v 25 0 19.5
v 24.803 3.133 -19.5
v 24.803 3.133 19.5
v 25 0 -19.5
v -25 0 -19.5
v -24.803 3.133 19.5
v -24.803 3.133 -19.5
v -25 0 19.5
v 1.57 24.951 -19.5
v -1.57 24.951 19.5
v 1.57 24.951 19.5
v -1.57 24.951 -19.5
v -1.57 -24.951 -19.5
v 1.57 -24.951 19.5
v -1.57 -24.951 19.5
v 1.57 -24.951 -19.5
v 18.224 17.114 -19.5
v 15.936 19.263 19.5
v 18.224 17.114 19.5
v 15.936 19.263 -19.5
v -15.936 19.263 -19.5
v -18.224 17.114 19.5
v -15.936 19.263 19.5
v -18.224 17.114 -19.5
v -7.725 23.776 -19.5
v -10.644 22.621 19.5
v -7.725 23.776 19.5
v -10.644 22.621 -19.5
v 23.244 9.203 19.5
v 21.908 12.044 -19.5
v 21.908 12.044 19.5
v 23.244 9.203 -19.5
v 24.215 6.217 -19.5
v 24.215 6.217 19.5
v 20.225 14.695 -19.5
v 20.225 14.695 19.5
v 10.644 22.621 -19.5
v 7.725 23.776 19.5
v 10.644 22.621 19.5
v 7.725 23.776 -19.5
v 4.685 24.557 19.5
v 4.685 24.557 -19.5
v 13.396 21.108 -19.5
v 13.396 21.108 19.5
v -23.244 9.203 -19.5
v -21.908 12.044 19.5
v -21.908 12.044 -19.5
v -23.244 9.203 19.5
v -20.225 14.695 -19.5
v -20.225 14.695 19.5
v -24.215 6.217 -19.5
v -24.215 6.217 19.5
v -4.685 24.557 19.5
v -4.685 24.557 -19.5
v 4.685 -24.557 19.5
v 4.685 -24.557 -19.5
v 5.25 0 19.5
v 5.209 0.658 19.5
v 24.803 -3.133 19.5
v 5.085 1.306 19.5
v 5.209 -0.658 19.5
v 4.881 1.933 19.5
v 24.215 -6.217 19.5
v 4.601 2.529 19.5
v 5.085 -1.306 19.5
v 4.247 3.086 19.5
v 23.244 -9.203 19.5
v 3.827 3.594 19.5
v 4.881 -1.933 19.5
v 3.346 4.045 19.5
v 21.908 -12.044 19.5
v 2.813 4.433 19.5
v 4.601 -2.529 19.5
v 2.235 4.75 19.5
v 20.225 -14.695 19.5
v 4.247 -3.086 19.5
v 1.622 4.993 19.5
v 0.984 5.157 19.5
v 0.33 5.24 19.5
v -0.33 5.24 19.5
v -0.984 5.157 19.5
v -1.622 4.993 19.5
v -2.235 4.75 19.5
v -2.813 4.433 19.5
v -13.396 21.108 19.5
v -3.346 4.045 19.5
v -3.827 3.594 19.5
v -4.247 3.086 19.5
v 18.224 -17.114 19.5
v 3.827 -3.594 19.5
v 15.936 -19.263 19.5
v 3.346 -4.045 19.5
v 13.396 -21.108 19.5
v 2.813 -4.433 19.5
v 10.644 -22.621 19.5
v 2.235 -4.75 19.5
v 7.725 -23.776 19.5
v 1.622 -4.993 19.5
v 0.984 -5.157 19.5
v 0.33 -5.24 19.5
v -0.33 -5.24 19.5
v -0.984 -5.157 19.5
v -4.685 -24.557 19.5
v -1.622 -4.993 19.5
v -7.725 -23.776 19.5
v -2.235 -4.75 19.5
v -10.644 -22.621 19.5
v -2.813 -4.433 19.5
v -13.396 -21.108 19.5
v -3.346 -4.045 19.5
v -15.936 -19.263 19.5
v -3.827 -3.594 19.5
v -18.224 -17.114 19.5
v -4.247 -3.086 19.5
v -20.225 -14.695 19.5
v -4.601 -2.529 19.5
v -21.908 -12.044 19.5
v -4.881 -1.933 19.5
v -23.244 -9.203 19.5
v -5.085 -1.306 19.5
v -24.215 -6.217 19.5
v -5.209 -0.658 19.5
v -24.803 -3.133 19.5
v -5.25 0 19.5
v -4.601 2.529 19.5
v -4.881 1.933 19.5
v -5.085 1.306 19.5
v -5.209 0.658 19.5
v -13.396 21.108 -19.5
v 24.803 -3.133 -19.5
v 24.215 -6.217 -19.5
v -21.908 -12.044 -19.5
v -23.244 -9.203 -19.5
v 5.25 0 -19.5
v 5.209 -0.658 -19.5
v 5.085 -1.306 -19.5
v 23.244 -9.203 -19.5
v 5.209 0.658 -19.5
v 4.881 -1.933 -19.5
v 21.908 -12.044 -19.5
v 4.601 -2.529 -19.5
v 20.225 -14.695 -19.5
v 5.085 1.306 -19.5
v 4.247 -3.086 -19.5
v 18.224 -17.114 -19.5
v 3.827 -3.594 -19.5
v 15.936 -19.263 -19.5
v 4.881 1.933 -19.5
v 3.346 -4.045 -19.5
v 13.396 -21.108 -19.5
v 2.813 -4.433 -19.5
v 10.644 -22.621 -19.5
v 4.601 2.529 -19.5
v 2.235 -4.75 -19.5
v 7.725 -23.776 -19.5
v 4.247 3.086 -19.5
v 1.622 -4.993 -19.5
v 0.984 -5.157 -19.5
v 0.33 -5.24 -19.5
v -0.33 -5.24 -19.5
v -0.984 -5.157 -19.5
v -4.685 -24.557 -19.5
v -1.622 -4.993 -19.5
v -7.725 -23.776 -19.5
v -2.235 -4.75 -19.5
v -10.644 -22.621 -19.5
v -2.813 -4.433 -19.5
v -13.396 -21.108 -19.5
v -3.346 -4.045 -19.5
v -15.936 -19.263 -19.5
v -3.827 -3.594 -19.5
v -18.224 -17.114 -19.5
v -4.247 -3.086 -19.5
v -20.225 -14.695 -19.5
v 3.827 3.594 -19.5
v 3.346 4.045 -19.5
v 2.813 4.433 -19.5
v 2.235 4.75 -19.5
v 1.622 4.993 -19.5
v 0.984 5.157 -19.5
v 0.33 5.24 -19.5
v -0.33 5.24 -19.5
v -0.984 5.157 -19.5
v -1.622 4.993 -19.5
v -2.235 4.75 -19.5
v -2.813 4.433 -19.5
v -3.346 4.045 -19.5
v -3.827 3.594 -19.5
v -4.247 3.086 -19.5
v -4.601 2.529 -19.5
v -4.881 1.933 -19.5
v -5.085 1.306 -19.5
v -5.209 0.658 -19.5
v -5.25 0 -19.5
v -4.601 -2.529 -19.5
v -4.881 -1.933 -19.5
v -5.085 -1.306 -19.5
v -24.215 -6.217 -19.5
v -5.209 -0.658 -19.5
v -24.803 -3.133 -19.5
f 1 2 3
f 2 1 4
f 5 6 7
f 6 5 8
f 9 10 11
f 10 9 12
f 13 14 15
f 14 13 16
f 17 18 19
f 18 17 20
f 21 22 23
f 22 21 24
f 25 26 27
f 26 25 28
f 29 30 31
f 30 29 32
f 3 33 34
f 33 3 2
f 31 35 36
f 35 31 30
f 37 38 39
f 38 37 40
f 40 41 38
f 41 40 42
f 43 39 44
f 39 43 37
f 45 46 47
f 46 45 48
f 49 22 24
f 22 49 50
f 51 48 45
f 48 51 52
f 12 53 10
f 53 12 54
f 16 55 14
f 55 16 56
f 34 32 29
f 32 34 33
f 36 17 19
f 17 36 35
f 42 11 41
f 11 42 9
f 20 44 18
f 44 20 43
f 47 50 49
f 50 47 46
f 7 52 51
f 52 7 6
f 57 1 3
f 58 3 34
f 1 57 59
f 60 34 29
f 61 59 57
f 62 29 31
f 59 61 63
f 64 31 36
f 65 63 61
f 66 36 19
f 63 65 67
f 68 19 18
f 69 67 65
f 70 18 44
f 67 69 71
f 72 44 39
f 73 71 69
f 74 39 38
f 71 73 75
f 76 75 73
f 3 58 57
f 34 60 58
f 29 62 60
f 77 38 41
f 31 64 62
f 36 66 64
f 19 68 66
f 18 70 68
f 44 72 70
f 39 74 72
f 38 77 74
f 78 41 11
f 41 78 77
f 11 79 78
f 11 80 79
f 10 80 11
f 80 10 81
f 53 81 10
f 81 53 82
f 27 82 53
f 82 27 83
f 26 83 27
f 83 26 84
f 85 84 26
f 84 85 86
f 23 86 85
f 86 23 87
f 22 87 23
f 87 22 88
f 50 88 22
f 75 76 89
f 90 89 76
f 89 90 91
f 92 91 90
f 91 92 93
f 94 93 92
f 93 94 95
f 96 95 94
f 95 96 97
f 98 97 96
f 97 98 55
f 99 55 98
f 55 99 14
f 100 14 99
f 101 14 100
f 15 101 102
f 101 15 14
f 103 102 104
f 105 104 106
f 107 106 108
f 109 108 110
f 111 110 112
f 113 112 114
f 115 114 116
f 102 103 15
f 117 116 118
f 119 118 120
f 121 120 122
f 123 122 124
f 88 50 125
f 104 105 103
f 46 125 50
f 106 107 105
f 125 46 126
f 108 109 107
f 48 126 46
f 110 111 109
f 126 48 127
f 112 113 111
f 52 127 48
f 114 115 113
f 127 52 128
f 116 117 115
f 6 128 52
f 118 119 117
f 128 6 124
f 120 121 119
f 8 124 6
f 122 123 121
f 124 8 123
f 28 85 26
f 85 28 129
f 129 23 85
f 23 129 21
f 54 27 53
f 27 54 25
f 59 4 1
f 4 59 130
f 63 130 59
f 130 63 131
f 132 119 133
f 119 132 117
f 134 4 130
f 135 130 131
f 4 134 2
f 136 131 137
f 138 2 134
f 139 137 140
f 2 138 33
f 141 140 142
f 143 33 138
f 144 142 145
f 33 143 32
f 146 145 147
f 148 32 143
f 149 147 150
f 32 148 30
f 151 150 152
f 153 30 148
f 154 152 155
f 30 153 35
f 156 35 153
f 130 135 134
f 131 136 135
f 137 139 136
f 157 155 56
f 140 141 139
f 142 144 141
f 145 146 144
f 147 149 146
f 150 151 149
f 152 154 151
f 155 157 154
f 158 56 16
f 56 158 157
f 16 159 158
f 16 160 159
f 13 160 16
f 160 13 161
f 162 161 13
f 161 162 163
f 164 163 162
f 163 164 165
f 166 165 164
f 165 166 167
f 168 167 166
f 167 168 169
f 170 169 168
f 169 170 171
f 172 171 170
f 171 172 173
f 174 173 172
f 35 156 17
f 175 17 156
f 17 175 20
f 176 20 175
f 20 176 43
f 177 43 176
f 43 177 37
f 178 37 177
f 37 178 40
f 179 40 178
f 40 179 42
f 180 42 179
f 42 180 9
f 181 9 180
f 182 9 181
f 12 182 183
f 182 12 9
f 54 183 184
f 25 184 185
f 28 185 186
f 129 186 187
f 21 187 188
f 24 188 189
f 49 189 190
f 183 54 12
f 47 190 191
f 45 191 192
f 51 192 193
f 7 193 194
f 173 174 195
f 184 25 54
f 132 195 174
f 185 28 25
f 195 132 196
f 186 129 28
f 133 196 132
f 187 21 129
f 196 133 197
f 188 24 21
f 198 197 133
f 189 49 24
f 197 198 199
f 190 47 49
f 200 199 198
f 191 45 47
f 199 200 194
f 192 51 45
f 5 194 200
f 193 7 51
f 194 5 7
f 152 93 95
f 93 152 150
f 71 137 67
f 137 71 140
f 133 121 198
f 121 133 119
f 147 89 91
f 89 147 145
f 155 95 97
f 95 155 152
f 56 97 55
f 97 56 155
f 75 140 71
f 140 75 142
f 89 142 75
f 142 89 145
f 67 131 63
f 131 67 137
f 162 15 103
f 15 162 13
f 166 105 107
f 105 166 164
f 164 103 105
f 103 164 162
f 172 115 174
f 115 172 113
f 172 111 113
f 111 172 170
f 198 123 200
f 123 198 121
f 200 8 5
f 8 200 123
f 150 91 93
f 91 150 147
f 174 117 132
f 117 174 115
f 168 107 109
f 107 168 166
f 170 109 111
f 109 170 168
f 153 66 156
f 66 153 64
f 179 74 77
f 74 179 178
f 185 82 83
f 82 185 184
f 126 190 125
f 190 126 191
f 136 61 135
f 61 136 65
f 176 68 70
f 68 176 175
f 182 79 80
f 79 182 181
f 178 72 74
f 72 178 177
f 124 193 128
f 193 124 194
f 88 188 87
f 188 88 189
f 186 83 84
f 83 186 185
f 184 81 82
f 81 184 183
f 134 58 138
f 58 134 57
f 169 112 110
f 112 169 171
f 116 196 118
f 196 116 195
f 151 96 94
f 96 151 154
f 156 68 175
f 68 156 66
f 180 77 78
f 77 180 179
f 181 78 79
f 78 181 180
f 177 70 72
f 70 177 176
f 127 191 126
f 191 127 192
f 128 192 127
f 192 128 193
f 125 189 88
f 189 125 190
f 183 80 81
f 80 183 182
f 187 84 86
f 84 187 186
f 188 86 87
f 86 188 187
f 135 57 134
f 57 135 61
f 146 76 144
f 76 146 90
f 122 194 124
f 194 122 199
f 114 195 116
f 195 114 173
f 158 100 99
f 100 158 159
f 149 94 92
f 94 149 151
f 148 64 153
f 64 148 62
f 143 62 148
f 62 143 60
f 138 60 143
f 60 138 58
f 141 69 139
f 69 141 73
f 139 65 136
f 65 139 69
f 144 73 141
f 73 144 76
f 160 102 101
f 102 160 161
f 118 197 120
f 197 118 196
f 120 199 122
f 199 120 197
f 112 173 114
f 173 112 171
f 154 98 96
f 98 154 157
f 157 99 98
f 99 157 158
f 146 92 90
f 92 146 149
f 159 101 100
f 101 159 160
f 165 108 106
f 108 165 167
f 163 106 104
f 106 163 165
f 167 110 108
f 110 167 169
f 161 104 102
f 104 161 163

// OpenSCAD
$fn = 50;


difference() {
	union() {
		translate(v = [0, 0, -19.5000000000]) {
			cylinder(h = 39, r = 25.0000000000);
		}
	}
	union() {
		translate(v = [0, 0, -100.0000000000]) {
			cylinder(h = 200, r = 5.2500000000);
		}
	}
}
